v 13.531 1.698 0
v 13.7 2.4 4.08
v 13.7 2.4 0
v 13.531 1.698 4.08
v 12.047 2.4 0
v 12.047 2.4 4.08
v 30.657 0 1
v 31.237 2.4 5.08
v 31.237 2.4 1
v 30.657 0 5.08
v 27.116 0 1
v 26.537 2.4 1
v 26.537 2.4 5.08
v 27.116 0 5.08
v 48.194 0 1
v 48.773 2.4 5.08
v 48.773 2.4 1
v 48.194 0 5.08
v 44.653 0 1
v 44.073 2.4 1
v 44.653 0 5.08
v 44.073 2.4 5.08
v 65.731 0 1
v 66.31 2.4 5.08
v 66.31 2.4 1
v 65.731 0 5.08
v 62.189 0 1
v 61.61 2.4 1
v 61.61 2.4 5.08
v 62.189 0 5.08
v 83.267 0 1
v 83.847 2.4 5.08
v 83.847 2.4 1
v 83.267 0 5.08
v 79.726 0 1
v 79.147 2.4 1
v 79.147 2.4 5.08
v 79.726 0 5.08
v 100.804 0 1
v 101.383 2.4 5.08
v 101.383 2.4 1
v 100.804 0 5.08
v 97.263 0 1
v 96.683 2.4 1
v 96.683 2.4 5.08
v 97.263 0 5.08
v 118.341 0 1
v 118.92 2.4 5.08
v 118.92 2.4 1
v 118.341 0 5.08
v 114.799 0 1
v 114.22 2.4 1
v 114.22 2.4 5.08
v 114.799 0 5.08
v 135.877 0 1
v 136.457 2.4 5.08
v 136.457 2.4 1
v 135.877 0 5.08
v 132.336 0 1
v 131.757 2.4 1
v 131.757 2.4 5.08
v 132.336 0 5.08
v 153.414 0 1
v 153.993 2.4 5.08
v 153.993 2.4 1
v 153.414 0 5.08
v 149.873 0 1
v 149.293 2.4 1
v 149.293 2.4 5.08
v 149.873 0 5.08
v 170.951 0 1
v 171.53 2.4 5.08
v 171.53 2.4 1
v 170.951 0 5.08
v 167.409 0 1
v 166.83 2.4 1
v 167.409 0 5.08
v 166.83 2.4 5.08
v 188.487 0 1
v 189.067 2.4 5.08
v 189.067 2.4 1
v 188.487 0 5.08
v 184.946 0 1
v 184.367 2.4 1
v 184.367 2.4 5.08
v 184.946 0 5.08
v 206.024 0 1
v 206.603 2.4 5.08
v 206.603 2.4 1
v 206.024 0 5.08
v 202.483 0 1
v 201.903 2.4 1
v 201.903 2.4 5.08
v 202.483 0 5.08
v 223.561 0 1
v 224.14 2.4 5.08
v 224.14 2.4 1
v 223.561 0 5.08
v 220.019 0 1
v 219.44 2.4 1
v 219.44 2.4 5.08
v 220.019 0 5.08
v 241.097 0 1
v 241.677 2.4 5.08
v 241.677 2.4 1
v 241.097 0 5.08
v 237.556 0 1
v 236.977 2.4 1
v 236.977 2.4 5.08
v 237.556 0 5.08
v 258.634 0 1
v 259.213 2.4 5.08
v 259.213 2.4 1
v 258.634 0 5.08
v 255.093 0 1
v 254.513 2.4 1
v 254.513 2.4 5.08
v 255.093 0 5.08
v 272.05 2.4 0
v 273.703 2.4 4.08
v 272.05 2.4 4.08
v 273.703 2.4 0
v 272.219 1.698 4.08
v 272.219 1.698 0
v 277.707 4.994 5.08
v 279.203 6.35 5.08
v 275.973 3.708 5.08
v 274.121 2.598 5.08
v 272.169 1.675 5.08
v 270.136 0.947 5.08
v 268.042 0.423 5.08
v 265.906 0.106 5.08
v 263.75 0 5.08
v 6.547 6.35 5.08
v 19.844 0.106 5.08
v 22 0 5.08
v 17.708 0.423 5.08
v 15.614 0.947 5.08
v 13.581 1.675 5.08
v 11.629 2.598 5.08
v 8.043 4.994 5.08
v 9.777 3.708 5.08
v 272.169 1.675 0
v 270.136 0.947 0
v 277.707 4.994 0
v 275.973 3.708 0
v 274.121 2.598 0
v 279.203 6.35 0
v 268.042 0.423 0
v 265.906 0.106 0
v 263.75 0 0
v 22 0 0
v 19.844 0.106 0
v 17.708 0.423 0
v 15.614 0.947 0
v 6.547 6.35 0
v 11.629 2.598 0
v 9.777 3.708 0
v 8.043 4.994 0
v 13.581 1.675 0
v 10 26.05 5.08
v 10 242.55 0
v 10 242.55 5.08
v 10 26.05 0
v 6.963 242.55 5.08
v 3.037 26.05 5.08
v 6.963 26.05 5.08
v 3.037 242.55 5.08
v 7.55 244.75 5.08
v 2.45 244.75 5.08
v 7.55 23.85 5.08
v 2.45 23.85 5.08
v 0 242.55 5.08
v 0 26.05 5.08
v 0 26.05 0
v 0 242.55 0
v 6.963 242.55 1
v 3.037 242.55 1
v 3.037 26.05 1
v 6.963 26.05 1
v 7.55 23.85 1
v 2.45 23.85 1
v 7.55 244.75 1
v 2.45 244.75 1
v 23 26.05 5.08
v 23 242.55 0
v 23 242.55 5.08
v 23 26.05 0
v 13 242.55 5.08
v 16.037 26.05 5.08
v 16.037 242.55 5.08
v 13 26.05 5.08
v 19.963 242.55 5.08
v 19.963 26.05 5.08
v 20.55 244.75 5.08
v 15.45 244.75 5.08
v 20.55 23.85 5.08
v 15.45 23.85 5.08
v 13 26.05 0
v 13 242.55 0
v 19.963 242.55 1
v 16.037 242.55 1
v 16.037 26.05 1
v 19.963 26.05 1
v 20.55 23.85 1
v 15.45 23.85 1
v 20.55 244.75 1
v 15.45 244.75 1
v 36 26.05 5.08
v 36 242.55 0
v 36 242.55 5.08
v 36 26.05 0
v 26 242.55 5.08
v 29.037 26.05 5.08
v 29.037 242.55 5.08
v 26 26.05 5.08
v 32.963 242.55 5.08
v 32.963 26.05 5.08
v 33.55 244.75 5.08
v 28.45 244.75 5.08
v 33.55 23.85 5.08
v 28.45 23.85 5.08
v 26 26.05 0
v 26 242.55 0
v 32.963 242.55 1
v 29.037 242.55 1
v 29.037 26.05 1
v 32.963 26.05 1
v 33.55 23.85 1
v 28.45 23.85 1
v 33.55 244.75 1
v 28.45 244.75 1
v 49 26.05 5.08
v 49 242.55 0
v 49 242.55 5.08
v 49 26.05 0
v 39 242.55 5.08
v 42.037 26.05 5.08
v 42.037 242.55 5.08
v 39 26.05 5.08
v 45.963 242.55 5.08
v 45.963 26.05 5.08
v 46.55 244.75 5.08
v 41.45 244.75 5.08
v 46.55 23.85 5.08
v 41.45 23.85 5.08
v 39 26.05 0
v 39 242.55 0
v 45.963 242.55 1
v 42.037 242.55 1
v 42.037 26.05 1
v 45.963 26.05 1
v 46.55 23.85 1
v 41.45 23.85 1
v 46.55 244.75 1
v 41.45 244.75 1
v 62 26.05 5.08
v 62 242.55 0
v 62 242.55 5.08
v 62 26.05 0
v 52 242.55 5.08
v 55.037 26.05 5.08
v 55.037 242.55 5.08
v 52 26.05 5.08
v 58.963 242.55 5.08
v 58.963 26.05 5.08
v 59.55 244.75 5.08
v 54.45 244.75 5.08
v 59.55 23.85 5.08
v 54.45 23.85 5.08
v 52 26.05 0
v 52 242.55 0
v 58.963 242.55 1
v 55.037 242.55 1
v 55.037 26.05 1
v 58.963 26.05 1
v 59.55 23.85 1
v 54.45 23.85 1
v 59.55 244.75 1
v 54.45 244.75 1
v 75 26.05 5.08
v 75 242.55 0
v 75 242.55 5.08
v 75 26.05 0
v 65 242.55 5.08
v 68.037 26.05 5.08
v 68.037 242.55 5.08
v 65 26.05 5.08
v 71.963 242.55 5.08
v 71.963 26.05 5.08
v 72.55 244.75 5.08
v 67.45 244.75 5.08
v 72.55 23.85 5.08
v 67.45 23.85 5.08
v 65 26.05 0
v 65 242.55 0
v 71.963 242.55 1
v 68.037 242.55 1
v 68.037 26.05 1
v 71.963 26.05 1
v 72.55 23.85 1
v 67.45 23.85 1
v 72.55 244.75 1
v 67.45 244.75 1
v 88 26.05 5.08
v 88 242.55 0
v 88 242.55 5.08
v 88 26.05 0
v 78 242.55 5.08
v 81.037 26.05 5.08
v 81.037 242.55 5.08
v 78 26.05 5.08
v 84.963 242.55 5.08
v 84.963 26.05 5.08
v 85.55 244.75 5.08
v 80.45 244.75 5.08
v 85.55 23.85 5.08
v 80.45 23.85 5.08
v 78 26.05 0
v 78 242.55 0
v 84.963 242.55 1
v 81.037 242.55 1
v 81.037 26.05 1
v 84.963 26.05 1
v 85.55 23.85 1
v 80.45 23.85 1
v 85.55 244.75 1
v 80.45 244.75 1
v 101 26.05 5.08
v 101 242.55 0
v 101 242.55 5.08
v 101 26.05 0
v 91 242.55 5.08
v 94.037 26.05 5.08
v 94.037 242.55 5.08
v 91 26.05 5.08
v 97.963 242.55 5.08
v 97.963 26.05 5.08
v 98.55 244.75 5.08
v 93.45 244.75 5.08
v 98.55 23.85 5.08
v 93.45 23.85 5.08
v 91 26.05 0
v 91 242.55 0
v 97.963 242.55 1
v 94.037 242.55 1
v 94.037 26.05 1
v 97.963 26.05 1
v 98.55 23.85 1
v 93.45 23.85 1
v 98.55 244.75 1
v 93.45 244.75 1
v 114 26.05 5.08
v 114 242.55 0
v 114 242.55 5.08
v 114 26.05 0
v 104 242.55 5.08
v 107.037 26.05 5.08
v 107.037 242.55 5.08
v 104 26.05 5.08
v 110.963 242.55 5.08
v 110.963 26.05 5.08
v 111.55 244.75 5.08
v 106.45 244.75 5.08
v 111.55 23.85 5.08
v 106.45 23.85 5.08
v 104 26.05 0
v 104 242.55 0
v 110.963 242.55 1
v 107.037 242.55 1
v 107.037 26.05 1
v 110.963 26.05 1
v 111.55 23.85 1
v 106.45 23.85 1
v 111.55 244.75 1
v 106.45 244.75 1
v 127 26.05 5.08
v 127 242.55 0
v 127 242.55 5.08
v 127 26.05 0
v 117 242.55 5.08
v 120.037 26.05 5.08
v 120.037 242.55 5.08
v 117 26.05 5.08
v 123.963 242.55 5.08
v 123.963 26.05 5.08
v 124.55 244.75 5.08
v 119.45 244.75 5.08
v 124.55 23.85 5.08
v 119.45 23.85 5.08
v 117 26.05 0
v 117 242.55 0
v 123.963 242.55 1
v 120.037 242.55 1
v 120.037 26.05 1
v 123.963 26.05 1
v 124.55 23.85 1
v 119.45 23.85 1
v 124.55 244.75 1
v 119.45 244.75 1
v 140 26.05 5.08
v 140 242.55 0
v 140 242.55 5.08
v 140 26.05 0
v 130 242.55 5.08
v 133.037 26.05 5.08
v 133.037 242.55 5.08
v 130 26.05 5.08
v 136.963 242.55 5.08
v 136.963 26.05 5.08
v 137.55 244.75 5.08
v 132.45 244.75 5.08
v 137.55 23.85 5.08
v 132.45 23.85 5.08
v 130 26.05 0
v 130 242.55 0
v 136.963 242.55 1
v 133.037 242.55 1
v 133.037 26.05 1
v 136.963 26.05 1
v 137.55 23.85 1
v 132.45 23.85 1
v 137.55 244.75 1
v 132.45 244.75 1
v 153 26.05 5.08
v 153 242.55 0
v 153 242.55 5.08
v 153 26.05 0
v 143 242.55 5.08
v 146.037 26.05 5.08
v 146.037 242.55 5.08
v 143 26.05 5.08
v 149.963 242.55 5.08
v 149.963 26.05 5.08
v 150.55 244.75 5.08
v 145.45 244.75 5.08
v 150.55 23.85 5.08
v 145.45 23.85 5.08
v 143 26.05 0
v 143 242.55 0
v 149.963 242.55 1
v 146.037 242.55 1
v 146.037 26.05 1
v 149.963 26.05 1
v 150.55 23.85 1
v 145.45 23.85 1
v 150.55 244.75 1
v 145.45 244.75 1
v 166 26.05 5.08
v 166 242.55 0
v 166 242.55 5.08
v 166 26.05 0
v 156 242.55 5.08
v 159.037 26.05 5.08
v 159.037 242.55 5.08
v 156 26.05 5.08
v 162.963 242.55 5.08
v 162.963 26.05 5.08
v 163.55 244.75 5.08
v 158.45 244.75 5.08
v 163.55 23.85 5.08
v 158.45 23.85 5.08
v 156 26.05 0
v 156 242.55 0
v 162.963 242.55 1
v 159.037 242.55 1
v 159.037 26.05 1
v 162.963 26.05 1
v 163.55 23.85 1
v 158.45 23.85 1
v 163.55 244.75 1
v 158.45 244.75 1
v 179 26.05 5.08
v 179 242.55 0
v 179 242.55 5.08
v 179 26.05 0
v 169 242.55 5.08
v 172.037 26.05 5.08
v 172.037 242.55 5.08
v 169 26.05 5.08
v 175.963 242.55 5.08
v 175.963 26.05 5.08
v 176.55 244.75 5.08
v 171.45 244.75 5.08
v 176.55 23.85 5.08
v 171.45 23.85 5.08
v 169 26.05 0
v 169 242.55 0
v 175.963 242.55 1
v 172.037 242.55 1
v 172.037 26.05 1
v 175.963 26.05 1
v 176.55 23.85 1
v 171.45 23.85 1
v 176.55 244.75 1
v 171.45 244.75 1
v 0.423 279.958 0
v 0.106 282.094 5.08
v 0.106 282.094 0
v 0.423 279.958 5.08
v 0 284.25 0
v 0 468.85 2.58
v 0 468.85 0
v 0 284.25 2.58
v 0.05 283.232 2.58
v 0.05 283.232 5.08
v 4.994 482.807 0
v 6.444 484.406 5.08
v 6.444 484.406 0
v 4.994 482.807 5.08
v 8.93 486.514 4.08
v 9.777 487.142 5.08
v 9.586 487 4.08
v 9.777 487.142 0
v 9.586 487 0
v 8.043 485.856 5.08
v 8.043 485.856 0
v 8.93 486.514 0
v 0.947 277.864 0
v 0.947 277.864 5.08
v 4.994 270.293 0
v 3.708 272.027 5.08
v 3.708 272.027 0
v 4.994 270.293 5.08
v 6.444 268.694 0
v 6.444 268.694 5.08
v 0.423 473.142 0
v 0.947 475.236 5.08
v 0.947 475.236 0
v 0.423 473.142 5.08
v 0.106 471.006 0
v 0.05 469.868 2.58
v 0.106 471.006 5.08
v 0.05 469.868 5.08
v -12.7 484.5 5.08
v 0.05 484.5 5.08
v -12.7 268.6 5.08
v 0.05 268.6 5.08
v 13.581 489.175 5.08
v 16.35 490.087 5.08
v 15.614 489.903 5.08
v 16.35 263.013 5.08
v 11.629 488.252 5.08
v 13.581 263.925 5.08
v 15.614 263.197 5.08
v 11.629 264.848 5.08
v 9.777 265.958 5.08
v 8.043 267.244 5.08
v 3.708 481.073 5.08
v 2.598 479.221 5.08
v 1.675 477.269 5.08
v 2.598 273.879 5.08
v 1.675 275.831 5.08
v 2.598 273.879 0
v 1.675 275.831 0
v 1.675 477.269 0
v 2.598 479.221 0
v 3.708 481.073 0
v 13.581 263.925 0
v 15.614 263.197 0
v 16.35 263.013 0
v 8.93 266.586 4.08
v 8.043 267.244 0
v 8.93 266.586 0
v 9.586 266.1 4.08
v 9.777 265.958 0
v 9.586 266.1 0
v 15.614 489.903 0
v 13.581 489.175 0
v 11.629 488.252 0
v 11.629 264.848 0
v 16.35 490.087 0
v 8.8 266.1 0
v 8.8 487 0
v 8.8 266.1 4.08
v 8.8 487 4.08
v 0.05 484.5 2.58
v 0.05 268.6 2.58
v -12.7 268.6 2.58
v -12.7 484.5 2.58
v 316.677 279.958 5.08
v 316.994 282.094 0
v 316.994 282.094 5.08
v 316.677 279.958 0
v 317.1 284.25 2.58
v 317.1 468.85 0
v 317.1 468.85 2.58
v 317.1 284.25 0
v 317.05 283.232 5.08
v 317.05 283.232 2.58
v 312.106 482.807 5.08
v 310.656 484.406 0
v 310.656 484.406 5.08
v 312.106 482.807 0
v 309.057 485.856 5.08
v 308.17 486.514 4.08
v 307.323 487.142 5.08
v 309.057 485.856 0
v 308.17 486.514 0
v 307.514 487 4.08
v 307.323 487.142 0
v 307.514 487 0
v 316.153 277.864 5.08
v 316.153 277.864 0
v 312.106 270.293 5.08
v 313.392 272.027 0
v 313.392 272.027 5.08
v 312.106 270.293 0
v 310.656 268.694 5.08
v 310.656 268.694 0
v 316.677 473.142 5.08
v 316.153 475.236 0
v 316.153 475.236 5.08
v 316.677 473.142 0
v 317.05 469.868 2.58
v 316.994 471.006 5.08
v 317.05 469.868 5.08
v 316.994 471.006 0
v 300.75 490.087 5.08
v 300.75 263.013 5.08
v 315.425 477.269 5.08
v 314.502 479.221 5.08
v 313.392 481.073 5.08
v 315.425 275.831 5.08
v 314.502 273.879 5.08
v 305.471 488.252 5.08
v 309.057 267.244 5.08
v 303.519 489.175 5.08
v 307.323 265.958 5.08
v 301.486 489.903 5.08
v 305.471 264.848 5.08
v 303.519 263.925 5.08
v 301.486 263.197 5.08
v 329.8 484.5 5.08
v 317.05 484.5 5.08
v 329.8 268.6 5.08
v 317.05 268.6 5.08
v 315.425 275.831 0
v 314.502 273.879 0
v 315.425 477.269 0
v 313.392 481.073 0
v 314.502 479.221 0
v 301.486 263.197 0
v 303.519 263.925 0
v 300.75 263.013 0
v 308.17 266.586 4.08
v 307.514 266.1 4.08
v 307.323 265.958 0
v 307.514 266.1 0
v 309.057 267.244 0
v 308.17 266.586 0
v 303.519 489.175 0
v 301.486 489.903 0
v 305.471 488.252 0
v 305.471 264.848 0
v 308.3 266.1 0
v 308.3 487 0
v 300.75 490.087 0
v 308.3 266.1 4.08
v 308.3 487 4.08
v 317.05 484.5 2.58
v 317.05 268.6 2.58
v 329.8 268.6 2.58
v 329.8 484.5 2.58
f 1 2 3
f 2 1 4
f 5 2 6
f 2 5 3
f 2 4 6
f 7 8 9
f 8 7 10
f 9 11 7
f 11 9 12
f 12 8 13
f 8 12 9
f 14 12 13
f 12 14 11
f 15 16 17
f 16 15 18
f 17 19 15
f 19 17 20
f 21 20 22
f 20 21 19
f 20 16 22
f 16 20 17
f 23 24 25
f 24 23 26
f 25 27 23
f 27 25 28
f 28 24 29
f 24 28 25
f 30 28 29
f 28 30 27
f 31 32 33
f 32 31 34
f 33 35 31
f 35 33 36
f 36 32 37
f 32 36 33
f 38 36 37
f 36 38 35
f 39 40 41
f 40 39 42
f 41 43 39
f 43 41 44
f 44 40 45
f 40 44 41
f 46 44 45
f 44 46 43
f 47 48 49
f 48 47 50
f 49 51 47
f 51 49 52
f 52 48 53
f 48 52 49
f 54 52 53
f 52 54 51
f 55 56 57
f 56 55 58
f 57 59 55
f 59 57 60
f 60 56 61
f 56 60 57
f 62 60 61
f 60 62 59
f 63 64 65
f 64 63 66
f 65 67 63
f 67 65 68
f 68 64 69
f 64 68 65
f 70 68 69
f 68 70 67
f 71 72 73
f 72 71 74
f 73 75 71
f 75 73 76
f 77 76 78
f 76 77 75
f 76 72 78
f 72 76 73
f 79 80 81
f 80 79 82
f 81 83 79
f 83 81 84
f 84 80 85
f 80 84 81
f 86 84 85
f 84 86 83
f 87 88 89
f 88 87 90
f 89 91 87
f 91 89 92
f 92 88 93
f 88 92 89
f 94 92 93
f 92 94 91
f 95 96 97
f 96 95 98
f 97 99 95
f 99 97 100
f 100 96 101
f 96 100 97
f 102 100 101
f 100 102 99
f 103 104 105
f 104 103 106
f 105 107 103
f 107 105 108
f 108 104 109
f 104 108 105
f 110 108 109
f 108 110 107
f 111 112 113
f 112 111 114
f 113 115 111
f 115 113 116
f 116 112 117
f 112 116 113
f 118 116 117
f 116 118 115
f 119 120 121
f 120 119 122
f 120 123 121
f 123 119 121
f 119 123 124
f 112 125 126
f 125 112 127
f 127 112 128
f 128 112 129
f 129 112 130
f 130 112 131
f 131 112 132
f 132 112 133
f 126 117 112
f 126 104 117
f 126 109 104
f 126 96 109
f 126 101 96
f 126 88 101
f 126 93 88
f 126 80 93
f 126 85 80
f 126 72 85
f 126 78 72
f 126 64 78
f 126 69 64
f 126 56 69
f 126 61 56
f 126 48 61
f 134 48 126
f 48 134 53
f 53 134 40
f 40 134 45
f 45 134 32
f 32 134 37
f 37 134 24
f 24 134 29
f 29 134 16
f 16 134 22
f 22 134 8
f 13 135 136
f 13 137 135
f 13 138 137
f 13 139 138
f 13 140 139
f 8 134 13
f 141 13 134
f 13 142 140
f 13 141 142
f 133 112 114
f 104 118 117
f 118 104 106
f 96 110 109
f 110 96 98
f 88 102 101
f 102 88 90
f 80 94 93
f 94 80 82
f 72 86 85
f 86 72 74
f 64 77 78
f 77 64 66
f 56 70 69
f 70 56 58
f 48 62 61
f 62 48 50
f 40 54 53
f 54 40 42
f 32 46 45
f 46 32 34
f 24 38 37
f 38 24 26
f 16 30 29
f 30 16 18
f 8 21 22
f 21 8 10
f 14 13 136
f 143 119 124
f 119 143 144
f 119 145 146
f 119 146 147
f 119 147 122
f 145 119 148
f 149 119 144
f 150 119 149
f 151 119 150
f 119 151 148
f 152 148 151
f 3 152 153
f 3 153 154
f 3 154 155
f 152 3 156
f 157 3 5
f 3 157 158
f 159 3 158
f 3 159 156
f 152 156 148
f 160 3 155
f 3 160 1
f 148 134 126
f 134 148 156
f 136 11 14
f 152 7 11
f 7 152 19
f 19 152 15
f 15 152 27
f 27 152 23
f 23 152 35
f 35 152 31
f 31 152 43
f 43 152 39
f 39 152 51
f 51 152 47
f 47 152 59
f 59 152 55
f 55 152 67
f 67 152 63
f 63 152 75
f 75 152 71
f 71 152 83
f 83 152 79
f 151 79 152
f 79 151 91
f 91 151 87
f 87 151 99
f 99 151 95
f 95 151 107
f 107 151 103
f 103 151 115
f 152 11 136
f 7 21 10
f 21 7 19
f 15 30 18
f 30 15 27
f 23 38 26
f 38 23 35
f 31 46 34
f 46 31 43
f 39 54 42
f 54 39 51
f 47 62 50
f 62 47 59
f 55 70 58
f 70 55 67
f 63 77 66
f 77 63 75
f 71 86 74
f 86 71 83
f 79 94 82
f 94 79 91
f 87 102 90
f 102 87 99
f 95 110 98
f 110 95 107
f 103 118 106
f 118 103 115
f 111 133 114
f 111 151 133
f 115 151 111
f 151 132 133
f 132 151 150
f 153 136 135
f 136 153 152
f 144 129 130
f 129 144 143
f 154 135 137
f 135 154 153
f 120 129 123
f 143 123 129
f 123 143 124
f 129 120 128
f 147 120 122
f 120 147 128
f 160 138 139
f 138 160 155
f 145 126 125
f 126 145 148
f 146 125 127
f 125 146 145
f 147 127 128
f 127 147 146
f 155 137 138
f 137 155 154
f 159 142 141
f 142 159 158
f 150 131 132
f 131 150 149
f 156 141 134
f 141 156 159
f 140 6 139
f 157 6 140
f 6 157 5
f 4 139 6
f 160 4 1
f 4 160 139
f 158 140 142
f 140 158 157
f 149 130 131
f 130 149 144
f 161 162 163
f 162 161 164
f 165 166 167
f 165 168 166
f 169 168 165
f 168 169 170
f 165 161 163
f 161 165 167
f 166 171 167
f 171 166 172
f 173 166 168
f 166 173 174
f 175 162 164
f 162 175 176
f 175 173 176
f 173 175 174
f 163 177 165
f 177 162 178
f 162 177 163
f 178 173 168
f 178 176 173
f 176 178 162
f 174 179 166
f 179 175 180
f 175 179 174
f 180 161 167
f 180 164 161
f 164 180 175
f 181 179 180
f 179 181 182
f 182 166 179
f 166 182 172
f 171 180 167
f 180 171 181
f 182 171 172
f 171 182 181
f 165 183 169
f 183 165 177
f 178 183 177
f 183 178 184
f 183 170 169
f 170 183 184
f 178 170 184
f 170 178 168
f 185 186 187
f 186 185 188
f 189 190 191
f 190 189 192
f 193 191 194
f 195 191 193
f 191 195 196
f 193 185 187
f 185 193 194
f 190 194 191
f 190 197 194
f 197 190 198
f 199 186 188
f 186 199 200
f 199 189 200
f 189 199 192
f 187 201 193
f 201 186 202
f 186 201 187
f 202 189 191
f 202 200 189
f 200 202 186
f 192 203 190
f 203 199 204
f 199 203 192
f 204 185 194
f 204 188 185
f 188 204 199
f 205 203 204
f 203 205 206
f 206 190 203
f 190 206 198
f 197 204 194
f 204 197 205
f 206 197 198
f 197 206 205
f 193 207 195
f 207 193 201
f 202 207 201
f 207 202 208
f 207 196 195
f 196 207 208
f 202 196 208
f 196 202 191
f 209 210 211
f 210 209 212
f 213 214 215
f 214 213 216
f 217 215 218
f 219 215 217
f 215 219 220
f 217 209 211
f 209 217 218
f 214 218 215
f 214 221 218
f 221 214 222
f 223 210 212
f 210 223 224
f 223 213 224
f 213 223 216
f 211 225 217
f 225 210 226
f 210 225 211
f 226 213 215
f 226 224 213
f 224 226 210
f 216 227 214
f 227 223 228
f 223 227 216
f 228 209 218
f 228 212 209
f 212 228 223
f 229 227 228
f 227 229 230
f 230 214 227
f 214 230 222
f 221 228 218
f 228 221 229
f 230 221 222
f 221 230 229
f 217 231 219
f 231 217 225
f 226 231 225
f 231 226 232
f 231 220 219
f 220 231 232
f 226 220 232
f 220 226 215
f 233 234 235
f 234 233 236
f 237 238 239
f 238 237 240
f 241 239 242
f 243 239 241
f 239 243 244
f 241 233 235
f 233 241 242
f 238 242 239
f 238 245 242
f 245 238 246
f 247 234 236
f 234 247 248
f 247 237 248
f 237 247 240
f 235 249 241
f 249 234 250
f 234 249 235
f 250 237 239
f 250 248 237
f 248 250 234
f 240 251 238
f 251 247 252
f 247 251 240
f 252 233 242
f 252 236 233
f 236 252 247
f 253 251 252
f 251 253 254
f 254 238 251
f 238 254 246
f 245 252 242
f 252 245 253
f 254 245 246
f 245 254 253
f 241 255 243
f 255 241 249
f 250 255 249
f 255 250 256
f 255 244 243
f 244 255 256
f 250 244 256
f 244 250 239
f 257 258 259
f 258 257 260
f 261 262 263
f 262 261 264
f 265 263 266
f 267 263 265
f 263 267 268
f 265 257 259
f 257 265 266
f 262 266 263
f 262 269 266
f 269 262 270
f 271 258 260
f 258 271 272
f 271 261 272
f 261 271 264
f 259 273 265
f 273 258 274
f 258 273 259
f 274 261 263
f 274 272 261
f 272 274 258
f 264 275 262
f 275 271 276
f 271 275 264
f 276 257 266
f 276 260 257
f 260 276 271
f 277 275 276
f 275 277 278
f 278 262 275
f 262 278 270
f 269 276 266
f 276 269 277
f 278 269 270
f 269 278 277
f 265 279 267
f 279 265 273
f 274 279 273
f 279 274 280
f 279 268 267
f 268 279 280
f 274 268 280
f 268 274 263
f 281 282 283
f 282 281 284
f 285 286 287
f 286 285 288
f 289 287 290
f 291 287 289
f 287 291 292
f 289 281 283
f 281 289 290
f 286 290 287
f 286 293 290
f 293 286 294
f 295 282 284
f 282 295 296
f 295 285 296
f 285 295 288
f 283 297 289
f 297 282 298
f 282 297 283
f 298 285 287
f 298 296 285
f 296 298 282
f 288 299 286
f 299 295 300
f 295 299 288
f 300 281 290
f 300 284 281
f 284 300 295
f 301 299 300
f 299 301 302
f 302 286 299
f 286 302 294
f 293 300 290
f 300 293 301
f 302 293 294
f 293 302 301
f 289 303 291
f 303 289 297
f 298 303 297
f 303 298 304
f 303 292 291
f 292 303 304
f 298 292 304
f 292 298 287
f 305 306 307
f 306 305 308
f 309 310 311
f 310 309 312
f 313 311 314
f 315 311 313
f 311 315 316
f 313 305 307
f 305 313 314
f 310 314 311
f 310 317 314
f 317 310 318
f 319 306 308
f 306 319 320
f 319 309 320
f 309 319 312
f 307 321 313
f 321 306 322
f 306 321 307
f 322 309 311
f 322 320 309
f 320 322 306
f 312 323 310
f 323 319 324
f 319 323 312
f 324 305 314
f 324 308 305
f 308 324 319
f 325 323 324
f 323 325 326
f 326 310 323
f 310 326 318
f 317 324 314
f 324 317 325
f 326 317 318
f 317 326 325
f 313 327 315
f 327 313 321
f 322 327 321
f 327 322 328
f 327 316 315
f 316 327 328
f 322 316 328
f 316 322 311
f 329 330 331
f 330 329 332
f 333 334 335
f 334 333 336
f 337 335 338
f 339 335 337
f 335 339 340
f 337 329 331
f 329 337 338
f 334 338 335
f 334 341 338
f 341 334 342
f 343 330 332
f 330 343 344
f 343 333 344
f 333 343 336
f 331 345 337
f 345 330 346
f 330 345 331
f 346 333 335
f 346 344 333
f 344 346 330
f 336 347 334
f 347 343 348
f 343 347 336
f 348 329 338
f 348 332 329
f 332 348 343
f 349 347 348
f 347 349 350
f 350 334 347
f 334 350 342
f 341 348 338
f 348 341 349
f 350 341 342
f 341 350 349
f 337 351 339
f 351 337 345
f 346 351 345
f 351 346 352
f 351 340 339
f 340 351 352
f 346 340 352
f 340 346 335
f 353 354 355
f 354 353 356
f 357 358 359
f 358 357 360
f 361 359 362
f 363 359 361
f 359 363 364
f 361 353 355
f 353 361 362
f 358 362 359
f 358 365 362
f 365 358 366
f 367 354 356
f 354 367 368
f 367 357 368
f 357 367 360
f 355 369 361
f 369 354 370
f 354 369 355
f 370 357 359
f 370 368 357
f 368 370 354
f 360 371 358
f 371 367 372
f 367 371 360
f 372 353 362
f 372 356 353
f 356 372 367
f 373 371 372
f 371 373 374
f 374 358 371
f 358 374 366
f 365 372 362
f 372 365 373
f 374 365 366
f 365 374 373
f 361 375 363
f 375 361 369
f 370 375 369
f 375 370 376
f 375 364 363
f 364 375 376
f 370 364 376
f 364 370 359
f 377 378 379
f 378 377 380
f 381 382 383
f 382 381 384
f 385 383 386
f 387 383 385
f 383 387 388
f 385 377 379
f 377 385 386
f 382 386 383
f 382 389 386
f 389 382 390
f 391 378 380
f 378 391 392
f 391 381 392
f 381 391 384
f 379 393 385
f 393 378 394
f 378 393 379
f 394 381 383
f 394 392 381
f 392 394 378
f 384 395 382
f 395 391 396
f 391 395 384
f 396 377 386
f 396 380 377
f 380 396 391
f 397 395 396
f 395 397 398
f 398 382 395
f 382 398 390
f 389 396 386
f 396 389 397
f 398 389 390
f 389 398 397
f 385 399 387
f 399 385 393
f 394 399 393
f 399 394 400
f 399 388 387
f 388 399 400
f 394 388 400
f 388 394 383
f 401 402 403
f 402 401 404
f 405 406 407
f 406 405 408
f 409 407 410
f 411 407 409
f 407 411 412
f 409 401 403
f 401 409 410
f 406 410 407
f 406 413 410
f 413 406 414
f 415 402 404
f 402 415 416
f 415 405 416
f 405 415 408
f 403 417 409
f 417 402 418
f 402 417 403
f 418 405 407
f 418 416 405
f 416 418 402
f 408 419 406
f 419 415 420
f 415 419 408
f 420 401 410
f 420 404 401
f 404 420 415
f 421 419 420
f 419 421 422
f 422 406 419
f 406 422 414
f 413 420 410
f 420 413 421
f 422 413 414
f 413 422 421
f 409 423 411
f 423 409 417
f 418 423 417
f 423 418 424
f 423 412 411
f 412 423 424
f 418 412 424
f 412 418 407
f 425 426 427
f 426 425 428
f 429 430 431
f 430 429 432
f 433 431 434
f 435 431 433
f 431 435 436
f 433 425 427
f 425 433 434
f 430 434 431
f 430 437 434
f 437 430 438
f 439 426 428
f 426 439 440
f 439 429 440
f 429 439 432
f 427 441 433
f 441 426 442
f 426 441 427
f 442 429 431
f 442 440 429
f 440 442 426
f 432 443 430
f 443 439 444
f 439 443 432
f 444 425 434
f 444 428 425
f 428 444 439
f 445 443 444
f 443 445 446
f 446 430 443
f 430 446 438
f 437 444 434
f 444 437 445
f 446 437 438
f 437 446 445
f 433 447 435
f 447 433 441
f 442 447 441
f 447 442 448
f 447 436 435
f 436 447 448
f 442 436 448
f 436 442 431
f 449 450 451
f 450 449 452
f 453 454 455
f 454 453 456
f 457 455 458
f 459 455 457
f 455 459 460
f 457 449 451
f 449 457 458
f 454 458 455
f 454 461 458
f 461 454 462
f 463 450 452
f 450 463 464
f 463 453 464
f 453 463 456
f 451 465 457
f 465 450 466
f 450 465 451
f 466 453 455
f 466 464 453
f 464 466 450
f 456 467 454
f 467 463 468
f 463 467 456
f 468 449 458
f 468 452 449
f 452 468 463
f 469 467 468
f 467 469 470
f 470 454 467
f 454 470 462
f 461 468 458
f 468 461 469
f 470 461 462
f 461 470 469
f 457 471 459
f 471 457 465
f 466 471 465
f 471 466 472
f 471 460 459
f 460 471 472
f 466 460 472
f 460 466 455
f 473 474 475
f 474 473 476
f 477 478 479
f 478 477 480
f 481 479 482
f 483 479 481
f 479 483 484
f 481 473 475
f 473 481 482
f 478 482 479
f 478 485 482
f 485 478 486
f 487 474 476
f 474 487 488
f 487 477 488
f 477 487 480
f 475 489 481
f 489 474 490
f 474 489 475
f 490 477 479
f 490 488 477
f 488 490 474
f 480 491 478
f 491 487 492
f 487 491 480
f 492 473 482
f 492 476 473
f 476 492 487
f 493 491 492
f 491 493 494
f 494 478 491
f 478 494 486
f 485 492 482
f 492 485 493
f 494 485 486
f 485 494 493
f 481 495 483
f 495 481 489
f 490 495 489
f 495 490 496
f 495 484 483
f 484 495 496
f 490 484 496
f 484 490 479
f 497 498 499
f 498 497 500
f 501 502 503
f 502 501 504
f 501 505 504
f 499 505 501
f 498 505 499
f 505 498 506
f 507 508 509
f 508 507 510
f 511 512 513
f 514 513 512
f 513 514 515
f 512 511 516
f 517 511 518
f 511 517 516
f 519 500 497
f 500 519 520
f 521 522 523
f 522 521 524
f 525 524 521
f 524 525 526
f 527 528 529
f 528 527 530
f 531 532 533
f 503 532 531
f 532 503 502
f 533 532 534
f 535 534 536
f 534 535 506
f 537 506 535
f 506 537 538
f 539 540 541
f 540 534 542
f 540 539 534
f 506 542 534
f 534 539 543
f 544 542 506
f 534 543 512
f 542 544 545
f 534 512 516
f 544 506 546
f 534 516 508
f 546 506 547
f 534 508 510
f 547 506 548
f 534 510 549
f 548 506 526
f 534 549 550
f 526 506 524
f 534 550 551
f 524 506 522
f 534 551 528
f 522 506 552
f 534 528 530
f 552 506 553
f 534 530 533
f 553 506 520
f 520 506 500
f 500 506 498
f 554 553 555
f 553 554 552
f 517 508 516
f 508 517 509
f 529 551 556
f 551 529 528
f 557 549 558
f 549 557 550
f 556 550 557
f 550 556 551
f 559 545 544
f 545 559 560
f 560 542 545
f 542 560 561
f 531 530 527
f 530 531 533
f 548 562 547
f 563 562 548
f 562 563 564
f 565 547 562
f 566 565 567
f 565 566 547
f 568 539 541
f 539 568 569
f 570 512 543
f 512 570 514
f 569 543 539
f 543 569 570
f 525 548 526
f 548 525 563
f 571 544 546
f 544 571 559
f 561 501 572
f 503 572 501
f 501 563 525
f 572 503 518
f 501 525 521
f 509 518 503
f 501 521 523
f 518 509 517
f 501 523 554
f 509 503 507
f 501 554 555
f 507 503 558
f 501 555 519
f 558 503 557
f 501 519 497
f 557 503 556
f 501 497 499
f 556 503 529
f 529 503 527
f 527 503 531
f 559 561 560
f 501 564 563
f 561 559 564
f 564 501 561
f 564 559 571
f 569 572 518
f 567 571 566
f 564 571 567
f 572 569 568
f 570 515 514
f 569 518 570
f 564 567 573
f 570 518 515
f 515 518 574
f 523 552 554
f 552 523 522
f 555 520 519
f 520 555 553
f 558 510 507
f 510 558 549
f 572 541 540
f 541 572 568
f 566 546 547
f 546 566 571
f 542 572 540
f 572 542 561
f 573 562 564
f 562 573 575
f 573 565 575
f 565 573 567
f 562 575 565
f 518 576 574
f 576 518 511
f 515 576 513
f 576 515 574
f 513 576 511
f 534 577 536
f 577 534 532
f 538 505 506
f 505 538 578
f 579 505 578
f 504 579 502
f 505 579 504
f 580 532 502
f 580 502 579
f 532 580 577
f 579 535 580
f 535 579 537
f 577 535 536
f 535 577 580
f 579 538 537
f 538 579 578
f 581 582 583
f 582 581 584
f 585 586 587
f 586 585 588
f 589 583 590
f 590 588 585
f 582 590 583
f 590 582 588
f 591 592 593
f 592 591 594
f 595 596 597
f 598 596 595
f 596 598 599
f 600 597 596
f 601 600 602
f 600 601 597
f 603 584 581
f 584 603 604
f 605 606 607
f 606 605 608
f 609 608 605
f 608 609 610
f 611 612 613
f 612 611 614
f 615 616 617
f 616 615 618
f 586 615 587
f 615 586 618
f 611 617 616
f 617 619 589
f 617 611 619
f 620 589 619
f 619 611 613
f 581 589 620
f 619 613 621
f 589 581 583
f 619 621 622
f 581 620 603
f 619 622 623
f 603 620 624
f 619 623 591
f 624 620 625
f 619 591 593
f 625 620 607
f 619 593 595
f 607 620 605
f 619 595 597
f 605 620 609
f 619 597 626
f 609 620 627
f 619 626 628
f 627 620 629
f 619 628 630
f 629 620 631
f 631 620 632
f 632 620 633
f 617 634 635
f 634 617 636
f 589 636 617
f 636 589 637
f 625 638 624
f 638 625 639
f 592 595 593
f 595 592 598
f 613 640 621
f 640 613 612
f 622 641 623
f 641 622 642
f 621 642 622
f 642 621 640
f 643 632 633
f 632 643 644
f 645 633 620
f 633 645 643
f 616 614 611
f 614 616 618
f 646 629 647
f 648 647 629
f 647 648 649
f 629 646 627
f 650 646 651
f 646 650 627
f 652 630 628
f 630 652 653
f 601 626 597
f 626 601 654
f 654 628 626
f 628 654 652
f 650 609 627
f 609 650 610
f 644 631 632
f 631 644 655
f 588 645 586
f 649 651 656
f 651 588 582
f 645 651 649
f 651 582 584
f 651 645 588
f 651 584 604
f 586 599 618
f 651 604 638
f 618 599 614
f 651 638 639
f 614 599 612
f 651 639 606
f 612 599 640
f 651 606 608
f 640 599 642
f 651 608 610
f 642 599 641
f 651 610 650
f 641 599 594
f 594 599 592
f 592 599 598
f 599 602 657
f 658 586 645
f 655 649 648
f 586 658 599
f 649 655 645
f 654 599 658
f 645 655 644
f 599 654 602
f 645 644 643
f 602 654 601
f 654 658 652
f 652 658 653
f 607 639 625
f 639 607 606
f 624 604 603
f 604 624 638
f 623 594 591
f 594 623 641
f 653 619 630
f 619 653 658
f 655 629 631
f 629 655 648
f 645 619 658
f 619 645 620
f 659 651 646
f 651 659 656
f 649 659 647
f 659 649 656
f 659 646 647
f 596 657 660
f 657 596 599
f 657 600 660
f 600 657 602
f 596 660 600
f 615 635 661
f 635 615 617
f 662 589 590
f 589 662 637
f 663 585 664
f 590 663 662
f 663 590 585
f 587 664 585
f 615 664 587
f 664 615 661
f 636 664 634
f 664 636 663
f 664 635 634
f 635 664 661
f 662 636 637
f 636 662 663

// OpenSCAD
// file: model-forge/model-forge/joint.scad
// model-forge/joint.scad — dovetail finger-joint tabs for snap-fit panel
// segmentation. One segment gets protruding tabs (union onto its edge),
// the matching segment gets slightly-larger slots (difference cut into
// its edge) so the two press together with a light interference/snap fit.
//
// Both modules produce a 2D profile running along the X axis, centered
// on the boundary line (y=0), for a boundary of the given edge_length.
// The caller extrudes and positions/rotates it onto the actual seam
// (see back-wall-joint-test.scad for a worked example on a vertical seam).
//
//   use <model-forge/joint.scad>
//   linear_extrude(height=thickness)
//     dovetail_tabs_2d(edge_length=60, tab_width=15, tab_depth=6, taper=2);
//   // on the MATING piece, subtract:
//   linear_extrude(height=thickness+2)
//     dovetail_tabs_2d(edge_length=60, tab_width=15, tab_depth=6, taper=2, clearance=0.15);

module dovetail_tab_2d(tab_width, tab_depth, taper, base_overlap = 0.5) {
  // Trapezoid: narrow at the base, wider at the tip (y=tab_depth) — the
  // taper is what makes it a dovetail (can't pull straight out sideways
  // once the mating slot is filled) and gives the snap/interference feel
  // as it's pressed in along Y. The base extends base_overlap PAST y=0
  // (the seam line) on purpose: a cut/union placed exactly flush with a
  // piece's boundary face (zero overlap) is a classic OpenSCAD/CGAL
  // gotcha — coincident faces produce degenerate, non-manifold results
  // (confirmed here: without the overlap this rendered as a distorted
  // sliver instead of a clean notch). The overlap guarantees real overlap
  // for both the union (tab) and difference (slot) uses.
  polygon(points = [
    [-tab_width / 2, -base_overlap],
    [tab_width / 2, -base_overlap],
    [tab_width / 2 + taper, tab_depth],
    [-tab_width / 2 - taper, tab_depth],
  ]);
}

/**
 * A row of dovetail tabs spanning edge_length, evenly spaced and centered,
 * each tab_width wide with tab_depth of protrusion and the given taper.
 * Pass clearance > 0 (e.g. 0.15-0.2mm) when using this as a SLOT cutout on
 * the mating piece, so the tab has just enough room to press in.
 */
module dovetail_tabs_2d(edge_length, tab_width, tab_depth, taper, clearance = 0) {
  // Growing the slot via offset(delta=clearance) produced a disconnected
  // sliver fragment at the corner (confirmed with --render: 3 volumes
  // instead of 2, a known OpenSCAD quirk with delta-mode offset on a
  // trapezoid). Scaling the tab's own dimensions directly instead avoids
  // offset() entirely and renders as the expected 2 volumes.
  pitch = tab_width * 2;
  n = max(1, floor(edge_length / pitch));
  row_width = n * pitch - tab_width;
  start_x = -row_width / 2;
  for (i = [0 : n - 1]) {
    translate([start_x + i * pitch, 0])
      dovetail_tab_2d(tab_width + 2 * clearance, tab_depth + clearance, taper + clearance);
  }
}
// file: model-forge/tray.scad
// model-forge/tray.scad — rounded-corner outer panel with a recessed
// inset pocket (e.g. a "cooking dish" recess): a raised rim around the
// edge, floor thickness under the pocket, and an optional thin lip
// flange around the base — sized to slide into a support-rail groove
// (like the wooden rails inside the real Tiny Land oven cavity) rather
// than just resting loose.
//
//   use <model-forge/tray.scad>
//   rounded_tray(outer_width=285.75, outer_height=228.6, corner_radius=25.4,
//                floor_thickness=5.08, rim_height=3.81, inset_margin=6.35,
//                lip_width=3, lip_thickness=2);
//
// Shape: outer_width x outer_height slab, rounded corners (corner_radius),
// total height = floor_thickness + rim_height. A pocket is cut from the
// top, inset_margin in from every edge, cutting down through rim_height
// and stopping at floor_thickness from the bottom — so floor_thickness is
// what's left under the pocket, rim_height is how tall the surrounding
// wall stands above the pocket floor.
//
// The lip (lip_width/lip_thickness) is a thin flange at the TOP of the
// rim (from total_height-lip_thickness to total_height), sticking out
// lip_width beyond the main body on every side — corrected 2026-09-11
// per feedback on the real rail photo: the groove is near the top of the
// cavity wall, not the bottom. Both default to 0 (no lip) so existing
// calls keep working unchanged.

// hull-of-4-circles rounded rect — much faster to render than a
// minkowski-based approach for this shape (no minkowski sum needed).
module rounded_rect_2d(w, h, r) {
  hull() {
    translate([r, r]) circle(r = r, $fn = 64);
    translate([w - r, r]) circle(r = r, $fn = 64);
    translate([r, h - r]) circle(r = r, $fn = 64);
    translate([w - r, h - r]) circle(r = r, $fn = 64);
  }
}

module rounded_tray(
  outer_width,
  outer_height,
  corner_radius,
  floor_thickness,
  rim_height,
  inset_margin,
  lip_width = 0,
  lip_thickness = 0
) {
  total_height = floor_thickness + rim_height;

  union() {
    if (lip_width > 0 && lip_thickness > 0) {
      translate([-lip_width, -lip_width, total_height - lip_thickness])
        linear_extrude(height = lip_thickness)
          rounded_rect_2d(outer_width + 2 * lip_width, outer_height + 2 * lip_width, corner_radius + lip_width);
    }
    difference() {
      linear_extrude(height = total_height)
        rounded_rect_2d(outer_width, outer_height, corner_radius);
      translate([inset_margin, inset_margin, floor_thickness])
        cube([outer_width - 2 * inset_margin, outer_height - 2 * inset_margin, rim_height + 1]);
    }
  }
}
// file: model-forge/joint.scad
// model-forge/joint.scad — dovetail finger-joint tabs for snap-fit panel
// segmentation. One segment gets protruding tabs (union onto its edge),
// the matching segment gets slightly-larger slots (difference cut into
// its edge) so the two press together with a light interference/snap fit.
//
// Both modules produce a 2D profile running along the X axis, centered
// on the boundary line (y=0), for a boundary of the given edge_length.
// The caller extrudes and positions/rotates it onto the actual seam
// (see back-wall-joint-test.scad for a worked example on a vertical seam).
//
//   use <model-forge/joint.scad>
//   linear_extrude(height=thickness)
//     dovetail_tabs_2d(edge_length=60, tab_width=15, tab_depth=6, taper=2);
//   // on the MATING piece, subtract:
//   linear_extrude(height=thickness+2)
//     dovetail_tabs_2d(edge_length=60, tab_width=15, tab_depth=6, taper=2, clearance=0.15);

module dovetail_tab_2d(tab_width, tab_depth, taper, base_overlap = 0.5) {
  // Trapezoid: narrow at the base, wider at the tip (y=tab_depth) — the
  // taper is what makes it a dovetail (can't pull straight out sideways
  // once the mating slot is filled) and gives the snap/interference feel
  // as it's pressed in along Y. The base extends base_overlap PAST y=0
  // (the seam line) on purpose: a cut/union placed exactly flush with a
  // piece's boundary face (zero overlap) is a classic OpenSCAD/CGAL
  // gotcha — coincident faces produce degenerate, non-manifold results
  // (confirmed here: without the overlap this rendered as a distorted
  // sliver instead of a clean notch). The overlap guarantees real overlap
  // for both the union (tab) and difference (slot) uses.
  polygon(points = [
    [-tab_width / 2, -base_overlap],
    [tab_width / 2, -base_overlap],
    [tab_width / 2 + taper, tab_depth],
    [-tab_width / 2 - taper, tab_depth],
  ]);
}

/**
 * A row of dovetail tabs spanning edge_length, evenly spaced and centered,
 * each tab_width wide with tab_depth of protrusion and the given taper.
 * Pass clearance > 0 (e.g. 0.15-0.2mm) when using this as a SLOT cutout on
 * the mating piece, so the tab has just enough room to press in.
 */
module dovetail_tabs_2d(edge_length, tab_width, tab_depth, taper, clearance = 0) {
  // Growing the slot via offset(delta=clearance) produced a disconnected
  // sliver fragment at the corner (confirmed with --render: 3 volumes
  // instead of 2, a known OpenSCAD quirk with delta-mode offset on a
  // trapezoid). Scaling the tab's own dimensions directly instead avoids
  // offset() entirely and renders as the expected 2 volumes.
  pitch = tab_width * 2;
  n = max(1, floor(edge_length / pitch));
  row_width = n * pitch - tab_width;
  start_x = -row_width / 2;
  for (i = [0 : n - 1]) {
    translate([start_x + i * pitch, 0])
      dovetail_tab_2d(tab_width + 2 * clearance, tab_depth + clearance, taper + clearance);
  }
}
// file: model-forge/rack.scad
// model-forge/rack.scad — oven-rack-style construction: individual bars
// that dovetail into mortise slots on a rail, instead of one molded
// panel. Replaces the "cut a monolithic grate in half" approach: that
// either avoids the bars entirely (leaving only 2 tiny joints holding
// the whole panel together — a weak load path) or requires a shallow
// in-plane tab carved into a thin panel edge (limited by the panel's
// own thin cross-section). A real oven rack is built this way for a
// reason: each bar's FULL cross-section becomes the tenon, engaging the
// rail through its whole thickness — much stronger than a shallow edge
// tab, and the load is distributed across every bar instead of 2 points.
//
// Tenon defaults are the validated small-scale dovetail from
// dovetail-fit-test-small.scad (tab_width=3.5, tab_depth=2.5, taper=0.8)
// at clearance=-0.1mm — the winning value from a real print test
// (-0.15 held but needed a mallet and risked overstressing the joint;
// -0.1 was solid without excessive force).
use <model-forge/joint.scad> // dovetail_tab_2d

DEFAULT_TENON_WIDTH = 3.5;
DEFAULT_TENON_DEPTH = 2.5;
DEFAULT_TENON_TAPER = 0.8;
DEFAULT_CLEARANCE   = -0.1;
// A blind pocket instead of a through-slot: leaves this much solid
// material at the BOTTOM of the mortise (z=0 to floor_thickness) so a
// bar's tenon has a real seat to rest against instead of being able to
// slide all the way through with no positive stop. User: "the middle
// can actually have a small base layer under the rail so that the edge
// rails can hold the dovetail piece without allowing it to fall
// through -- even a 1mm... would work well." Set to 0 for the old
// through-slot behavior.
DEFAULT_FLOOR_THICKNESS = 1;

// A single bar spanning `span`, with a tenon on each end (at y=0,
// pointing further -Y, and at y=span, pointing further +Y). The tenon
// itself is shortened to (thickness - floor_thickness) and lifted to
// start at z=floor_thickness, so its bottom face lands exactly on the
// rail's mortise floor instead of continuing past it.
//
// eps: the bar's own base cube overlaps span by eps on each end so it
// genuinely penetrates into the rail's solid volume, not just touches
// it flush. dovetail_tab_2d's own base_overlap already handles this for
// the tenon itself, but the FLAT part of the bar's end face (the width
// outside the tenon) was still landing exactly coincident with the
// rail's flat face -- confirmed via a non-manifold-edge check (trimesh
// found them at exactly y=rail_width and y=rail_width+span, everywhere
// except the tenon). Same class of bug as tray.scad's lip eps and
// joint.scad's tab base_overlap.
module rack_bar(
  span,
  bar_width,
  thickness,
  tenon_width     = DEFAULT_TENON_WIDTH,
  tenon_depth     = DEFAULT_TENON_DEPTH,
  tenon_taper     = DEFAULT_TENON_TAPER,
  floor_thickness = DEFAULT_FLOOR_THICKNESS
) {
  eps = 0.3;
  tenon_h = thickness - floor_thickness;
  union() {
    translate([0, -eps, 0])
      cube([bar_width, span + 2 * eps, thickness]);
    translate([bar_width / 2, 0, floor_thickness])
      rotate([0, 0, 180])
        linear_extrude(height = tenon_h)
          dovetail_tab_2d(tenon_width, tenon_depth, tenon_taper);
    translate([bar_width / 2, span, floor_thickness])
      linear_extrude(height = tenon_h)
        dovetail_tab_2d(tenon_width, tenon_depth, tenon_taper);
  }
}

// A straight rail with n_bars evenly-spaced mortise slots along its
// y=0 edge, cutting +Y into rail_width. Each slot is a blind pocket
// (see floor_thickness above), not a through-cut. Mirror this piece
// (mirror([0,1,0]) then translate) to use it as the opposite-facing
// rail in an assembly — the slot pattern is symmetric, only the facing
// direction changes.
module rack_rail(
  length,
  rail_width,
  thickness,
  n_bars,
  bar_pitch,
  first_offset,
  tenon_width     = DEFAULT_TENON_WIDTH,
  tenon_depth     = DEFAULT_TENON_DEPTH,
  tenon_taper     = DEFAULT_TENON_TAPER,
  clearance       = DEFAULT_CLEARANCE,
  floor_thickness = DEFAULT_FLOOR_THICKNESS
) {
  difference() {
    cube([length, rail_width, thickness]);
    for (i = [0 : n_bars - 1])
      translate([first_offset + i * bar_pitch, 0, floor_thickness])
        linear_extrude(height = thickness - floor_thickness + 1)
          dovetail_tab_2d(
            tenon_width + 2 * clearance,
            tenon_depth + clearance,
            tenon_taper + clearance
          );
  }
}

// 2D wing profile: flat on the LEFT edge (x=0, where it joins a bar's
// own body), rounded on the RIGHT edge (the outer, x=width side).
// Built as a hull of two near-zero-radius points pinning the flat left
// edge and two real-radius circles rounding the right edge — same
// hull-of-circles technique as tray.scad's rounded_rect_2d.
//
// fillet_r must stay <= width/2, or the fillet circles (centered at
// width-fillet_r) bulge past x=0 and the "flat" edge disappears —
// confirmed: fillet_r=5 on width=6.35 put the circle center only
// 1.35mm from the edge with a 5mm radius, extending to x=-3.65 instead
// of stopping at x=0.
module edge_wing_2d(width, height, fillet_r) {
  hull() {
    translate([0, 0]) circle(r = 0.01, $fn = 8);
    translate([0, height]) circle(r = 0.01, $fn = 8);
    translate([width - fillet_r, fillet_r]) circle(r = fillet_r, $fn = 32);
    translate([width - fillet_r, height - fillet_r]) circle(r = fillet_r, $fn = 32);
  }
}

// An edge bar: identical tenon mechanism to rack_bar (dovetails into
// the SAME rail mortises, at the SAME pitch position as any other bar)
// but wider — extended out to the frame's true outer edge with a
// rounded outer corner, plus the lip flange for docking into the oven
// cavity's support rail. Replaces a separate perpendicular side-rail
// piece entirely: "why are you separating the side ones from the rail
// next to it -- we have 14 normal rails and 2 side rails with a nice
// rounded taper." No new joint type — same dovetail-into-mortise
// mechanism as every other bar, just a wider body on the outer end.
//
// wing_width: how far the wing extends beyond the bar's own bar_width
// (normally = frame_width_mm, reaching exactly to the true frame edge).
// Mirror this module (mirror([1,0,0]) after translating to the bar's
// own local origin) to build the RIGHT-side edge bar from the same code.
module rack_edge_bar(
  span,
  bar_width,
  thickness,
  wing_width,
  fillet_r,
  lip_width       = 0,
  lip_thickness   = 0,
  tenon_width     = DEFAULT_TENON_WIDTH,
  tenon_depth     = DEFAULT_TENON_DEPTH,
  tenon_taper     = DEFAULT_TENON_TAPER,
  floor_thickness = DEFAULT_FLOOR_THICKNESS
) {
  eps = 0.3; // same coincident-face overlap as rack_bar's own base cube
  union() {
    rack_bar(span, bar_width, thickness, tenon_width, tenon_depth, tenon_taper, floor_thickness);
    // Wing overlaps eps into the bar's own core (positive x) instead of
    // stopping exactly flush at x=0 -- same class of bug as the
    // bar/rail coincident face fixed earlier.
    //
    // Bug fixed 2026-09-13: mirroring the 2D profile BEFORE
    // linear_extrude (mirror([1,0]) on edge_wing_2d itself) inverts the
    // polygon winding -- the resulting solid was watertight on its own
    // but with is_winding_consistent=False and NEGATIVE volume. Unioned
    // with the bar's normal-winding solid, this silently produced a
    // mesh missing the wing entirely (confirmed: OpenSCAD's own "mesh
    // is not closed" warning, and the exported STL had no wing
    // geometry at all). Fix: mirror the 3D solid AFTER extrusion
    // instead, which OpenSCAD's dedicated 3D mirror handles correctly.
    translate([eps, 0, 0])
      mirror([1, 0, 0])
        linear_extrude(height = thickness)
          edge_wing_2d(wing_width, span, fillet_r);
    if (lip_width > 0 && lip_thickness > 0)
      translate([-wing_width - lip_width + eps, 0, thickness - lip_thickness])
        cube([lip_width, span, lip_thickness]);
  }
}
// main file
// Tiny Land oven grate v2 — full-scale rack construction: 16 bars
// dovetailing into a top rail and a bottom rail, at the validated
// -0.1mm clearance. Same bar pattern as the original oven_grate()'s
// auto-fit (16 bars, 10mm wide, 7.537mm gaps) so this sits in the exact
// same footprint.
//
// 14 normal bars + 2 edge bars. The outermost bar on each side is wider
// — extended to the frame's true edge, wrapping around the rail's own
// end with a rounded corner, plus the docking lip — instead of a
// separate perpendicular side-rail piece. Same tenon-into-mortise
// mechanism as every other bar, no new joint type.
//
// corner_radius here is 22mm, not the original design's 25.4mm.
// Checked directly: with the true 25.4mm radius, the rounded silhouette
// eats into where bar 1's own tenon connects to the rail (corner_radius
// > frame_width, so the curve reaches well past the corner square) —
// margin came out to just 0.2mm, too fragile to print reliably. 22mm
// keeps a safe 2mm margin there while staying visually very close to
// the original curve. The rail's own ends are cropped to this same
// curve (not a plain square cut) so the two pieces' silhouettes line up
// exactly where they meet.
//
// The rail (285.75mm) doesn't need a cut: it's only 6.35mm wide, and
// rotated ~45 degrees on the bed its bounding box drops to
// ~206.5 x 206.5mm, comfortably inside the 256mm bed. Rotate it in
// Bambu Studio and print it whole.
use <model-forge/rack.scad>
use <model-forge/joint.scad> // dovetail_tab_2d
use <model-forge/tray.scad>  // rounded_rect_2d

/* [Size — inches, matches oven-grate.scad] */
outer_width_in  = 11.25;
outer_height_in = 9;

/* [Bars] */
frame_width_mm = 6.35;
bar_width_mm   = 10;
n_bars         = 16;

/* [Edge bars — the outermost bar on each side, wrapped around the
   rail's end with a rounded corner and the lip that docks into the
   oven cavity's rail] */
end_lip_width_in    = 0.5;  // matches the short-edge lip from oven-tray.scad/oven-grate.scad
lip_thickness_mm    = 2.5;  // matches the validated 2.5mm rail-fit thickness
modular_corner_radius = 22; // see header comment — reduced from 25.4mm for a safe tenon margin

IN_TO_MM = 25.4;
outer_w = outer_width_in * IN_TO_MM;
outer_h = outer_height_in * IN_TO_MM;
thickness = 5.08;
floor_thickness = 1; // matches rack.scad's DEFAULT_FLOOR_THICKNESS
tenon_h = thickness - floor_thickness;

inner_w = outer_w - 2 * frame_width_mm;
inner_h = outer_h - 2 * frame_width_mm;
actual_gap = (inner_w - n_bars * bar_width_mm) / (n_bars - 1);
bar_pitch = bar_width_mm + actual_gap;
first_offset = frame_width_mm + bar_width_mm / 2;
last_offset = first_offset + (n_bars - 1) * bar_pitch;
crop_x = frame_width_mm + bar_width_mm; // boundary between the edge bar and the first normal bar

// Crops a shape (already in the rail's own y:[0,frame_width_mm] local
// frame) to the true rounded silhouette, using the y=0 edge of the
// curve — works for either the top or bottom rail since the curve is
// identical (mirrored) at both ends; mirror the RESULT to flip which
// edge it represents, same as before.
module corner_crop_2d() {
  intersection() {
    children(0);
    rounded_rect_2d(outer_w, outer_h, modular_corner_radius);
  }
}

// One rail — 16 slots, ends tapered to the true rounded silhouette
// (not a plain square cut) so it lines up exactly with the edge bars'
// own wrap. Same rail works as both top and bottom (mirror it for the
// opposite-facing slots — see rack.scad).
//
// Per-slot floor orientation (2026-09-13): the 14 middle slots (normal
// bars) keep floor-at-bottom/tenon-on-top — those bars get pushed on
// from above (things set on the grate), so the floor stops them being
// pushed down and out. The 2 end slots (edge bars, i=0 and i=15) flip
// to floor-at-top/tenon-from-bottom — the edge bars aren't loaded from
// above, they're pulled by the whole rack sliding against the oven
// cavity's side groove, a different force direction, so the floor goes
// on the side that actually resists it. rack_rail()'s own uniform-floor
// version doesn't support mixing this per slot, so this is built
// directly instead of calling it.
TENON_WIDTH = 3.5;
TENON_DEPTH = 2.5;
TENON_TAPER = 0.8;
CLEARANCE   = -0.1;

module grate_rail() {
  intersection() {
    difference() {
      cube([outer_w, frame_width_mm, thickness]);
      for (i = [0 : n_bars - 1]) {
        x = first_offset + i * bar_pitch;
        flip_this_one = (i == 0 || i == n_bars - 1);
        z0 = flip_this_one ? -1 : floor_thickness;
        h  = thickness - floor_thickness + 1;
        translate([x, 0, z0])
          linear_extrude(height = h)
            dovetail_tab_2d(
              TENON_WIDTH + 2 * CLEARANCE,
              TENON_DEPTH + CLEARANCE,
              TENON_TAPER + CLEARANCE
            );
      }
    }
    linear_extrude(height = thickness + 2)
      rounded_rect_2d(outer_w, outer_h, modular_corner_radius);
  }
}

// One normal bar — 215.9mm, fits the bed on its own.
module grate_bar() {
  rack_bar(inner_h, bar_width_mm, thickness);
}

// An edge bar: the true rounded silhouette cropped to just this bar's
// own column (x: 0 to crop_x), plus tenons at the same y-positions
// where the rail sits, plus the lip on the outer edge. Wraps all the
// way around the rail's end instead of butting a separate piece
// against it.
//
// Tenons here sit at z=0 (floor-at-top, matching the flipped rail
// slots at i=0/i=15 above) instead of z=floor_thickness like a normal
// bar — see grate_rail()'s comment for why.
module grate_edge_bar_left() {
  eps = 0.05;
  lip_w = end_lip_width_in * IN_TO_MM;
  union() {
    intersection() {
      linear_extrude(height = thickness)
        rounded_rect_2d(outer_w, outer_h, modular_corner_radius);
      translate([-1, -1, -1])
        cube([crop_x + 1, outer_h + 2, thickness + 2]);
    }
    // Tenon into the bottom rail (protrudes further -Y).
    translate([first_offset, frame_width_mm, 0])
      rotate([0, 0, 180])
        linear_extrude(height = tenon_h)
          dovetail_tab_2d(TENON_WIDTH, TENON_DEPTH, TENON_TAPER);
    // Tenon into the top rail (protrudes further +Y).
    translate([first_offset, outer_h - frame_width_mm, 0])
      linear_extrude(height = tenon_h)
        dovetail_tab_2d(TENON_WIDTH, TENON_DEPTH, TENON_TAPER);
    // Lip on the outer (x<0) edge, spanning the same run as a normal bar.
    translate([-lip_w, frame_width_mm, thickness - lip_thickness_mm])
      cube([lip_w + eps, inner_h, lip_thickness_mm]);
  }
}

// The right edge bar — same piece, mirrored so its wrap/lip extend right.
module grate_edge_bar_right() {
  mirror([1, 0, 0])
    translate([-outer_w, 0, 0])
      grate_edge_bar_left();
}

grate_rail();

// The 14 normal bars (positions 1 through 14 of 16), tiled on one plate.
bar_gap = 3;
for (i = [1 : n_bars - 2])
  translate([(i - 1) * (bar_width_mm + bar_gap), frame_width_mm + 20, 0])
    grate_bar();

// The 2 edge bars, off to the side.
translate([0, frame_width_mm + 20 + inner_h + 20, 0])
  grate_edge_bar_left();
translate([crop_x + 15, frame_width_mm + 20 + inner_h + 20, 0])
  grate_edge_bar_right();
